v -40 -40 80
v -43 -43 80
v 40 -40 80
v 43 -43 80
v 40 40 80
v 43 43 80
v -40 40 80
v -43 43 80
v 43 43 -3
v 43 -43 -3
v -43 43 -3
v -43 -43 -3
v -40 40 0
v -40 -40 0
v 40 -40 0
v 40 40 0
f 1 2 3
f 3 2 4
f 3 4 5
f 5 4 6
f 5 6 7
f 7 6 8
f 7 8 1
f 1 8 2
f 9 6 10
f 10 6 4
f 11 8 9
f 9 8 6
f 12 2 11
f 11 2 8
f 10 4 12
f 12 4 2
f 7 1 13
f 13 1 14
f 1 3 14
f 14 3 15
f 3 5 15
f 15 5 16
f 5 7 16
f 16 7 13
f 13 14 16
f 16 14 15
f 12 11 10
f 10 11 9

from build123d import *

# Parameters (mm, degrees)
SKETCH1_W           = 86
SKETCH1_H           = 86
SKETCH1_W_2         = 80
SKETCH1_H_2         = 80
BOSS_EXTRUDE1_DEPTH = 80
SKETCH2_W           = 86
SKETCH2_H           = 86
BOSS_EXTRUDE2_DEPTH = 3


with BuildPart() as part:
    # Sketch1 → Boss-Extrude1 (new body)
    with BuildSketch(Plane.XY):
        Rectangle(SKETCH1_W, SKETCH1_H)
        Rectangle(SKETCH1_W_2, SKETCH1_H_2, mode=Mode.SUBTRACT)
    extrude(amount=BOSS_EXTRUDE1_DEPTH)

    # Sketch2 → Boss-Extrude2 (add)
    with BuildSketch(Plane(origin=(0, 0, 0), x_dir=(-1, 0, 0), z_dir=(0, 0, -1))):
        Rectangle(SKETCH2_W, SKETCH2_H)
    extrude(amount=BOSS_EXTRUDE2_DEPTH)


solid = part.part
